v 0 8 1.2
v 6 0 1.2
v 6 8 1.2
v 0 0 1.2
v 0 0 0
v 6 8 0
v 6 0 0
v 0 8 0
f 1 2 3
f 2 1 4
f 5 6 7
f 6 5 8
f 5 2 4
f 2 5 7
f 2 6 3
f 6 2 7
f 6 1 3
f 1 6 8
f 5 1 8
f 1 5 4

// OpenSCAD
/* Warning, this is a very basic generator with a lot of approximation 
input data : [TFBGA, 8TX, 6x8x1.2mm, 48, , D, C04-00168D]
generated by com.zoubworld.electronics.cad.model3d.Basic
Date : Sun Feb 15 10:50:48 CET 2026
*/

//body
color("black")
translate([0,0,0])
cube([6.0,8.0,1.2], center=false);
